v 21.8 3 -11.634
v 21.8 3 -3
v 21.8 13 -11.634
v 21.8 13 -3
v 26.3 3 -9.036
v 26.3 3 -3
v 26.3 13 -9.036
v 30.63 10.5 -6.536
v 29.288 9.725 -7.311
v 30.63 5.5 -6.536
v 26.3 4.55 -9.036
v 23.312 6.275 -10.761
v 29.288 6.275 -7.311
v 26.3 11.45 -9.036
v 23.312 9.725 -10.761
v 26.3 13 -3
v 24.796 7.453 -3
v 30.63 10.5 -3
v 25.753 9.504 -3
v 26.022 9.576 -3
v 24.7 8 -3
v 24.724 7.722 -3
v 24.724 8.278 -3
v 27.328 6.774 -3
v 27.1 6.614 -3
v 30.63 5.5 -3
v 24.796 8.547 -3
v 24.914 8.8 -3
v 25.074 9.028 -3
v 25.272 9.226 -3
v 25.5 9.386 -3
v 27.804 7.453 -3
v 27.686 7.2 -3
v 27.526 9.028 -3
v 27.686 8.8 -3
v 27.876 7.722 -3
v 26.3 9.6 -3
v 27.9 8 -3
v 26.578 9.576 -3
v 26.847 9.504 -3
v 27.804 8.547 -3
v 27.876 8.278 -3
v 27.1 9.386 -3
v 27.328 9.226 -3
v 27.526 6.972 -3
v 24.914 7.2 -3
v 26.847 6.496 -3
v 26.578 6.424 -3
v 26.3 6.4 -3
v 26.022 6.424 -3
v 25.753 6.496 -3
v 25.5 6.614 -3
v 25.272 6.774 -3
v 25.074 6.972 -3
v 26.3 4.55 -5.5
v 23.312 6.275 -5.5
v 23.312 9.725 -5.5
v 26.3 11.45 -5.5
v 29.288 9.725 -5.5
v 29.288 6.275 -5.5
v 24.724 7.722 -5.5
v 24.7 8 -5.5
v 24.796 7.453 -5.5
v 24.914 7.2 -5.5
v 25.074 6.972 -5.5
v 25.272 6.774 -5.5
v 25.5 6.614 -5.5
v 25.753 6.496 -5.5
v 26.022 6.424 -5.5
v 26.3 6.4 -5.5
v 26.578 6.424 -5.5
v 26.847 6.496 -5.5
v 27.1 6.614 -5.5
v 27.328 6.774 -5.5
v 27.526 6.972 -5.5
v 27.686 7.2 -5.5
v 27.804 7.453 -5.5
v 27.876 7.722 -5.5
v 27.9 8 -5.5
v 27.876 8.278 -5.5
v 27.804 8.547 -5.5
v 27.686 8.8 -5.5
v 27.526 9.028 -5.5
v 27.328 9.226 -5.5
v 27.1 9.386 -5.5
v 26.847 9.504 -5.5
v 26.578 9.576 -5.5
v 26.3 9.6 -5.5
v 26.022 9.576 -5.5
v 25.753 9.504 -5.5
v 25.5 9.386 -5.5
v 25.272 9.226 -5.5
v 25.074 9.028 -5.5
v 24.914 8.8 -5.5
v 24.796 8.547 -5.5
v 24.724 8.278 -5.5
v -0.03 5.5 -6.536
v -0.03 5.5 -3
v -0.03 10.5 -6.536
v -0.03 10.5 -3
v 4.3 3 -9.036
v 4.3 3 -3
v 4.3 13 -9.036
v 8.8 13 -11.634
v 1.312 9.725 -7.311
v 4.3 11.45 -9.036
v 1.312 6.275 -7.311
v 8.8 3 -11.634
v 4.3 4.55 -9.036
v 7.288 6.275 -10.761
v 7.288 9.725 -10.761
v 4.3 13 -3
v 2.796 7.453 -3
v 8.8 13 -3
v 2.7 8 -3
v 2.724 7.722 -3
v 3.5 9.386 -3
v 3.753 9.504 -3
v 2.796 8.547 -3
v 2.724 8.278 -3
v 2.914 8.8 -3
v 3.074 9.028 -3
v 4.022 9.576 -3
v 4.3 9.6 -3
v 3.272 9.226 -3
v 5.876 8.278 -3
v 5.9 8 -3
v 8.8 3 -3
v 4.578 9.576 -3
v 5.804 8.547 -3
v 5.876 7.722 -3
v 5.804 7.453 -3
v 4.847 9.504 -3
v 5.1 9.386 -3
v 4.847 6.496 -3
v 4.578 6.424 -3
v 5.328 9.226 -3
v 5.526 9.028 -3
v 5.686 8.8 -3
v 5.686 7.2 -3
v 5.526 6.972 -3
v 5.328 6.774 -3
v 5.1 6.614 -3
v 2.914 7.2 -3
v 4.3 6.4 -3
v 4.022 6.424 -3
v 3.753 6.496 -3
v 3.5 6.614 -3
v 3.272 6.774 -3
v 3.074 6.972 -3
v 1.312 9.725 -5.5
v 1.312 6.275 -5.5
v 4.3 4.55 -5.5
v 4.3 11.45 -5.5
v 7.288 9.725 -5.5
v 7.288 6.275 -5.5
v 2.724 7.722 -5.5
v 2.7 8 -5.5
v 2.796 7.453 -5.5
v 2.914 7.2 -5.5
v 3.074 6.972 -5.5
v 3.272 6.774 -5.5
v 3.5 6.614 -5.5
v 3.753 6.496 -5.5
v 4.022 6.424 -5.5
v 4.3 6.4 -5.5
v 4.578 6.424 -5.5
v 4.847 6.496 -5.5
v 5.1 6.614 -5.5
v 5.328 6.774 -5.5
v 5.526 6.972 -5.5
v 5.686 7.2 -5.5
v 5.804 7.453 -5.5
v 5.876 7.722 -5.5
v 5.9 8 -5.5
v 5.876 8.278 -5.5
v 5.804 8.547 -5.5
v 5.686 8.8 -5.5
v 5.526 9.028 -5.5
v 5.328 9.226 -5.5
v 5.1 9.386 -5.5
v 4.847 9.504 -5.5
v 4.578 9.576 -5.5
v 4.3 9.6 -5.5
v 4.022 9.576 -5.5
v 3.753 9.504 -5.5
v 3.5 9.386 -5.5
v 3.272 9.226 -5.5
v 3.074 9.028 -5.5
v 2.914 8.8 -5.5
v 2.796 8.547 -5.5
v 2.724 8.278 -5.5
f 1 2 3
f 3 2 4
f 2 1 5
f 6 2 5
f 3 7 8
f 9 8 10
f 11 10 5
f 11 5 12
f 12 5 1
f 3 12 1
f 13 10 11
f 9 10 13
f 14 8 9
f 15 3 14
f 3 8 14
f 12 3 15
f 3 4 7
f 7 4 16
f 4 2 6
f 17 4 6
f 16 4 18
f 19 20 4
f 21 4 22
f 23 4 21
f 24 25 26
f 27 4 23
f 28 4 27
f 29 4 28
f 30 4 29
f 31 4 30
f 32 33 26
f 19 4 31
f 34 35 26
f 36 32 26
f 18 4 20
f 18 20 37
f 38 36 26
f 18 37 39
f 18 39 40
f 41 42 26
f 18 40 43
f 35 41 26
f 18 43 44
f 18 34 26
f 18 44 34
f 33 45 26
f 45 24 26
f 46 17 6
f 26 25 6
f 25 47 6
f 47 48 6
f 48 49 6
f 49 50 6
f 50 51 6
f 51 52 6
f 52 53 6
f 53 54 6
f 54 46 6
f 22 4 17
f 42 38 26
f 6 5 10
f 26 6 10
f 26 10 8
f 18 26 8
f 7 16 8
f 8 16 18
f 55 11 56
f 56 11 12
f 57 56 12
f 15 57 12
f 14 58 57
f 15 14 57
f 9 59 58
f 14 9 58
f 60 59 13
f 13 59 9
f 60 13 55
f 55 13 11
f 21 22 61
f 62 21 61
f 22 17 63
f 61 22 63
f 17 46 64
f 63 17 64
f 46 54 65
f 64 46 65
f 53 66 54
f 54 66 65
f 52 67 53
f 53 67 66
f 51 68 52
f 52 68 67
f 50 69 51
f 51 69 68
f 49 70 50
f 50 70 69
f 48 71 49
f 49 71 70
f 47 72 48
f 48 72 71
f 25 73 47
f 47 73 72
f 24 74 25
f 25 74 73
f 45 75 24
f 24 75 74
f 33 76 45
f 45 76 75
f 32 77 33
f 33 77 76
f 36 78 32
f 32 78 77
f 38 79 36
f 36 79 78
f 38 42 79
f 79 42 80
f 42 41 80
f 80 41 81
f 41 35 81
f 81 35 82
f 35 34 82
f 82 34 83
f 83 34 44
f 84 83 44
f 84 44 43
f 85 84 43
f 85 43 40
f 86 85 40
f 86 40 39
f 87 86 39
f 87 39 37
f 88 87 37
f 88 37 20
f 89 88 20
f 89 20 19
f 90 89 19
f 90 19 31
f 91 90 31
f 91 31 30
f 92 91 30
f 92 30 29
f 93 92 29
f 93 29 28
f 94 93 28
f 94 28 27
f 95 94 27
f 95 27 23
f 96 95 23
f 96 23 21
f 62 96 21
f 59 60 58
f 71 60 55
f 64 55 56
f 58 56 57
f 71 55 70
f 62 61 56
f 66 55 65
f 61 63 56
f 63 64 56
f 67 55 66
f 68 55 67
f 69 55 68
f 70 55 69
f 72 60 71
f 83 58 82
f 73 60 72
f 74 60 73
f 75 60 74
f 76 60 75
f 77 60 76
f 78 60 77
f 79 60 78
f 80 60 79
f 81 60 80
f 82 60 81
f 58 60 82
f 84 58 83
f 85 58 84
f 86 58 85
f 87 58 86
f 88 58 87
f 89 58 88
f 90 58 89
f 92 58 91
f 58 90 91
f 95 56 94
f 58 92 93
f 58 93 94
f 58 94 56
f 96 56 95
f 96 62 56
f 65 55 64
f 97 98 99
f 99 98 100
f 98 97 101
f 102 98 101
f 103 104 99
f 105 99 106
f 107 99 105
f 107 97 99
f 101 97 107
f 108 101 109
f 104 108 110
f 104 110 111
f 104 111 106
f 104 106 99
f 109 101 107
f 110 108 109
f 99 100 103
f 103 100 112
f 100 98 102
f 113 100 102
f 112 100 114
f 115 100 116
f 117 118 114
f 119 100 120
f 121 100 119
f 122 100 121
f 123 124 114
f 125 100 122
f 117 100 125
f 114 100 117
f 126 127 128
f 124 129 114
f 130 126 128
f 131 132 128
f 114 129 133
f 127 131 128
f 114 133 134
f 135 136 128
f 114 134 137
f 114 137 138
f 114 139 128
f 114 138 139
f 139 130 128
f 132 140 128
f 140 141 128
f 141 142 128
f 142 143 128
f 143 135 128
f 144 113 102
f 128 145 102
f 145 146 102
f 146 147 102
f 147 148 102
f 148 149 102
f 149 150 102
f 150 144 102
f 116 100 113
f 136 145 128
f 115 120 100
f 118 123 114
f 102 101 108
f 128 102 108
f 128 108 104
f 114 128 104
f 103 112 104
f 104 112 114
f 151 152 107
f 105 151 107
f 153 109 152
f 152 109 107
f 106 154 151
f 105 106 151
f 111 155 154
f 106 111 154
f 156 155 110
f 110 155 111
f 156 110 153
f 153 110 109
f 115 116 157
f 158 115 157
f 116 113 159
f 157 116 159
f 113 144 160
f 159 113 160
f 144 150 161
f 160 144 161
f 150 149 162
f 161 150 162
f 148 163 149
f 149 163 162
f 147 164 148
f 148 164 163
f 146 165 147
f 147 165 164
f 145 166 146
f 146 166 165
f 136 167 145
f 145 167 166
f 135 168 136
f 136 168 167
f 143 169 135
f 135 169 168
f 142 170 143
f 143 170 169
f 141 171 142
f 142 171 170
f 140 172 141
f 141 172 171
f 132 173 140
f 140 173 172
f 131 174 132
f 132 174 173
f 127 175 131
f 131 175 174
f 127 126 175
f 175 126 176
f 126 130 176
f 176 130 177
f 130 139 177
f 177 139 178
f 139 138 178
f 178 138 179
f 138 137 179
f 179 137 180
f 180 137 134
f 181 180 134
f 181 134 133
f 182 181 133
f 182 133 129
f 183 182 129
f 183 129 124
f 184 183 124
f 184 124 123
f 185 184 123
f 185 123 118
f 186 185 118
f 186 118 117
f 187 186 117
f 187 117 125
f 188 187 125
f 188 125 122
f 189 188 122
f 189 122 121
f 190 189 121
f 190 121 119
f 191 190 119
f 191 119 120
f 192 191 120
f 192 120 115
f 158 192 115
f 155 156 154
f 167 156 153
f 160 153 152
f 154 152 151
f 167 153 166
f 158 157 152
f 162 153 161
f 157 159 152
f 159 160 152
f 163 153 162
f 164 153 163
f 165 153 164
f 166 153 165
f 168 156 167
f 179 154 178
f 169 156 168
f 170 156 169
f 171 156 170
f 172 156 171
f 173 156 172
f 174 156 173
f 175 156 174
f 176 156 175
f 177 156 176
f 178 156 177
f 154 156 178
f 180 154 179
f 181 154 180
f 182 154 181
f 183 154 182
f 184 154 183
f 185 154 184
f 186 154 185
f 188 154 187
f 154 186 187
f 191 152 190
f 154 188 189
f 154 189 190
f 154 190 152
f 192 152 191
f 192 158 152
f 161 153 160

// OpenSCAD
// wall supporting parts for the motor cover

module wallPart() {
  difference() {
    union() {
      rotate([0, 0, 30]) cylinder(r=5, h=11.5, $fn = 6);
      translate([-4.5, -5, 0]) cube([4.5, 10, 11.5]);
    }
    rotate([0, 0, 30]) cylinder(r=3.45, h=9, $fn = 6);
	cylinder(r=1.6, h=12, $fn = 36);

    translate([-6, -5, 2]) rotate([0, 60, 0]) cube([20, 10, 20]);
  }
}

translate([26.3, 8, -14.5]) wallPart();
translate([4.3, 8, -14.5]) rotate([0, 0, 180]) wallPart();
  
